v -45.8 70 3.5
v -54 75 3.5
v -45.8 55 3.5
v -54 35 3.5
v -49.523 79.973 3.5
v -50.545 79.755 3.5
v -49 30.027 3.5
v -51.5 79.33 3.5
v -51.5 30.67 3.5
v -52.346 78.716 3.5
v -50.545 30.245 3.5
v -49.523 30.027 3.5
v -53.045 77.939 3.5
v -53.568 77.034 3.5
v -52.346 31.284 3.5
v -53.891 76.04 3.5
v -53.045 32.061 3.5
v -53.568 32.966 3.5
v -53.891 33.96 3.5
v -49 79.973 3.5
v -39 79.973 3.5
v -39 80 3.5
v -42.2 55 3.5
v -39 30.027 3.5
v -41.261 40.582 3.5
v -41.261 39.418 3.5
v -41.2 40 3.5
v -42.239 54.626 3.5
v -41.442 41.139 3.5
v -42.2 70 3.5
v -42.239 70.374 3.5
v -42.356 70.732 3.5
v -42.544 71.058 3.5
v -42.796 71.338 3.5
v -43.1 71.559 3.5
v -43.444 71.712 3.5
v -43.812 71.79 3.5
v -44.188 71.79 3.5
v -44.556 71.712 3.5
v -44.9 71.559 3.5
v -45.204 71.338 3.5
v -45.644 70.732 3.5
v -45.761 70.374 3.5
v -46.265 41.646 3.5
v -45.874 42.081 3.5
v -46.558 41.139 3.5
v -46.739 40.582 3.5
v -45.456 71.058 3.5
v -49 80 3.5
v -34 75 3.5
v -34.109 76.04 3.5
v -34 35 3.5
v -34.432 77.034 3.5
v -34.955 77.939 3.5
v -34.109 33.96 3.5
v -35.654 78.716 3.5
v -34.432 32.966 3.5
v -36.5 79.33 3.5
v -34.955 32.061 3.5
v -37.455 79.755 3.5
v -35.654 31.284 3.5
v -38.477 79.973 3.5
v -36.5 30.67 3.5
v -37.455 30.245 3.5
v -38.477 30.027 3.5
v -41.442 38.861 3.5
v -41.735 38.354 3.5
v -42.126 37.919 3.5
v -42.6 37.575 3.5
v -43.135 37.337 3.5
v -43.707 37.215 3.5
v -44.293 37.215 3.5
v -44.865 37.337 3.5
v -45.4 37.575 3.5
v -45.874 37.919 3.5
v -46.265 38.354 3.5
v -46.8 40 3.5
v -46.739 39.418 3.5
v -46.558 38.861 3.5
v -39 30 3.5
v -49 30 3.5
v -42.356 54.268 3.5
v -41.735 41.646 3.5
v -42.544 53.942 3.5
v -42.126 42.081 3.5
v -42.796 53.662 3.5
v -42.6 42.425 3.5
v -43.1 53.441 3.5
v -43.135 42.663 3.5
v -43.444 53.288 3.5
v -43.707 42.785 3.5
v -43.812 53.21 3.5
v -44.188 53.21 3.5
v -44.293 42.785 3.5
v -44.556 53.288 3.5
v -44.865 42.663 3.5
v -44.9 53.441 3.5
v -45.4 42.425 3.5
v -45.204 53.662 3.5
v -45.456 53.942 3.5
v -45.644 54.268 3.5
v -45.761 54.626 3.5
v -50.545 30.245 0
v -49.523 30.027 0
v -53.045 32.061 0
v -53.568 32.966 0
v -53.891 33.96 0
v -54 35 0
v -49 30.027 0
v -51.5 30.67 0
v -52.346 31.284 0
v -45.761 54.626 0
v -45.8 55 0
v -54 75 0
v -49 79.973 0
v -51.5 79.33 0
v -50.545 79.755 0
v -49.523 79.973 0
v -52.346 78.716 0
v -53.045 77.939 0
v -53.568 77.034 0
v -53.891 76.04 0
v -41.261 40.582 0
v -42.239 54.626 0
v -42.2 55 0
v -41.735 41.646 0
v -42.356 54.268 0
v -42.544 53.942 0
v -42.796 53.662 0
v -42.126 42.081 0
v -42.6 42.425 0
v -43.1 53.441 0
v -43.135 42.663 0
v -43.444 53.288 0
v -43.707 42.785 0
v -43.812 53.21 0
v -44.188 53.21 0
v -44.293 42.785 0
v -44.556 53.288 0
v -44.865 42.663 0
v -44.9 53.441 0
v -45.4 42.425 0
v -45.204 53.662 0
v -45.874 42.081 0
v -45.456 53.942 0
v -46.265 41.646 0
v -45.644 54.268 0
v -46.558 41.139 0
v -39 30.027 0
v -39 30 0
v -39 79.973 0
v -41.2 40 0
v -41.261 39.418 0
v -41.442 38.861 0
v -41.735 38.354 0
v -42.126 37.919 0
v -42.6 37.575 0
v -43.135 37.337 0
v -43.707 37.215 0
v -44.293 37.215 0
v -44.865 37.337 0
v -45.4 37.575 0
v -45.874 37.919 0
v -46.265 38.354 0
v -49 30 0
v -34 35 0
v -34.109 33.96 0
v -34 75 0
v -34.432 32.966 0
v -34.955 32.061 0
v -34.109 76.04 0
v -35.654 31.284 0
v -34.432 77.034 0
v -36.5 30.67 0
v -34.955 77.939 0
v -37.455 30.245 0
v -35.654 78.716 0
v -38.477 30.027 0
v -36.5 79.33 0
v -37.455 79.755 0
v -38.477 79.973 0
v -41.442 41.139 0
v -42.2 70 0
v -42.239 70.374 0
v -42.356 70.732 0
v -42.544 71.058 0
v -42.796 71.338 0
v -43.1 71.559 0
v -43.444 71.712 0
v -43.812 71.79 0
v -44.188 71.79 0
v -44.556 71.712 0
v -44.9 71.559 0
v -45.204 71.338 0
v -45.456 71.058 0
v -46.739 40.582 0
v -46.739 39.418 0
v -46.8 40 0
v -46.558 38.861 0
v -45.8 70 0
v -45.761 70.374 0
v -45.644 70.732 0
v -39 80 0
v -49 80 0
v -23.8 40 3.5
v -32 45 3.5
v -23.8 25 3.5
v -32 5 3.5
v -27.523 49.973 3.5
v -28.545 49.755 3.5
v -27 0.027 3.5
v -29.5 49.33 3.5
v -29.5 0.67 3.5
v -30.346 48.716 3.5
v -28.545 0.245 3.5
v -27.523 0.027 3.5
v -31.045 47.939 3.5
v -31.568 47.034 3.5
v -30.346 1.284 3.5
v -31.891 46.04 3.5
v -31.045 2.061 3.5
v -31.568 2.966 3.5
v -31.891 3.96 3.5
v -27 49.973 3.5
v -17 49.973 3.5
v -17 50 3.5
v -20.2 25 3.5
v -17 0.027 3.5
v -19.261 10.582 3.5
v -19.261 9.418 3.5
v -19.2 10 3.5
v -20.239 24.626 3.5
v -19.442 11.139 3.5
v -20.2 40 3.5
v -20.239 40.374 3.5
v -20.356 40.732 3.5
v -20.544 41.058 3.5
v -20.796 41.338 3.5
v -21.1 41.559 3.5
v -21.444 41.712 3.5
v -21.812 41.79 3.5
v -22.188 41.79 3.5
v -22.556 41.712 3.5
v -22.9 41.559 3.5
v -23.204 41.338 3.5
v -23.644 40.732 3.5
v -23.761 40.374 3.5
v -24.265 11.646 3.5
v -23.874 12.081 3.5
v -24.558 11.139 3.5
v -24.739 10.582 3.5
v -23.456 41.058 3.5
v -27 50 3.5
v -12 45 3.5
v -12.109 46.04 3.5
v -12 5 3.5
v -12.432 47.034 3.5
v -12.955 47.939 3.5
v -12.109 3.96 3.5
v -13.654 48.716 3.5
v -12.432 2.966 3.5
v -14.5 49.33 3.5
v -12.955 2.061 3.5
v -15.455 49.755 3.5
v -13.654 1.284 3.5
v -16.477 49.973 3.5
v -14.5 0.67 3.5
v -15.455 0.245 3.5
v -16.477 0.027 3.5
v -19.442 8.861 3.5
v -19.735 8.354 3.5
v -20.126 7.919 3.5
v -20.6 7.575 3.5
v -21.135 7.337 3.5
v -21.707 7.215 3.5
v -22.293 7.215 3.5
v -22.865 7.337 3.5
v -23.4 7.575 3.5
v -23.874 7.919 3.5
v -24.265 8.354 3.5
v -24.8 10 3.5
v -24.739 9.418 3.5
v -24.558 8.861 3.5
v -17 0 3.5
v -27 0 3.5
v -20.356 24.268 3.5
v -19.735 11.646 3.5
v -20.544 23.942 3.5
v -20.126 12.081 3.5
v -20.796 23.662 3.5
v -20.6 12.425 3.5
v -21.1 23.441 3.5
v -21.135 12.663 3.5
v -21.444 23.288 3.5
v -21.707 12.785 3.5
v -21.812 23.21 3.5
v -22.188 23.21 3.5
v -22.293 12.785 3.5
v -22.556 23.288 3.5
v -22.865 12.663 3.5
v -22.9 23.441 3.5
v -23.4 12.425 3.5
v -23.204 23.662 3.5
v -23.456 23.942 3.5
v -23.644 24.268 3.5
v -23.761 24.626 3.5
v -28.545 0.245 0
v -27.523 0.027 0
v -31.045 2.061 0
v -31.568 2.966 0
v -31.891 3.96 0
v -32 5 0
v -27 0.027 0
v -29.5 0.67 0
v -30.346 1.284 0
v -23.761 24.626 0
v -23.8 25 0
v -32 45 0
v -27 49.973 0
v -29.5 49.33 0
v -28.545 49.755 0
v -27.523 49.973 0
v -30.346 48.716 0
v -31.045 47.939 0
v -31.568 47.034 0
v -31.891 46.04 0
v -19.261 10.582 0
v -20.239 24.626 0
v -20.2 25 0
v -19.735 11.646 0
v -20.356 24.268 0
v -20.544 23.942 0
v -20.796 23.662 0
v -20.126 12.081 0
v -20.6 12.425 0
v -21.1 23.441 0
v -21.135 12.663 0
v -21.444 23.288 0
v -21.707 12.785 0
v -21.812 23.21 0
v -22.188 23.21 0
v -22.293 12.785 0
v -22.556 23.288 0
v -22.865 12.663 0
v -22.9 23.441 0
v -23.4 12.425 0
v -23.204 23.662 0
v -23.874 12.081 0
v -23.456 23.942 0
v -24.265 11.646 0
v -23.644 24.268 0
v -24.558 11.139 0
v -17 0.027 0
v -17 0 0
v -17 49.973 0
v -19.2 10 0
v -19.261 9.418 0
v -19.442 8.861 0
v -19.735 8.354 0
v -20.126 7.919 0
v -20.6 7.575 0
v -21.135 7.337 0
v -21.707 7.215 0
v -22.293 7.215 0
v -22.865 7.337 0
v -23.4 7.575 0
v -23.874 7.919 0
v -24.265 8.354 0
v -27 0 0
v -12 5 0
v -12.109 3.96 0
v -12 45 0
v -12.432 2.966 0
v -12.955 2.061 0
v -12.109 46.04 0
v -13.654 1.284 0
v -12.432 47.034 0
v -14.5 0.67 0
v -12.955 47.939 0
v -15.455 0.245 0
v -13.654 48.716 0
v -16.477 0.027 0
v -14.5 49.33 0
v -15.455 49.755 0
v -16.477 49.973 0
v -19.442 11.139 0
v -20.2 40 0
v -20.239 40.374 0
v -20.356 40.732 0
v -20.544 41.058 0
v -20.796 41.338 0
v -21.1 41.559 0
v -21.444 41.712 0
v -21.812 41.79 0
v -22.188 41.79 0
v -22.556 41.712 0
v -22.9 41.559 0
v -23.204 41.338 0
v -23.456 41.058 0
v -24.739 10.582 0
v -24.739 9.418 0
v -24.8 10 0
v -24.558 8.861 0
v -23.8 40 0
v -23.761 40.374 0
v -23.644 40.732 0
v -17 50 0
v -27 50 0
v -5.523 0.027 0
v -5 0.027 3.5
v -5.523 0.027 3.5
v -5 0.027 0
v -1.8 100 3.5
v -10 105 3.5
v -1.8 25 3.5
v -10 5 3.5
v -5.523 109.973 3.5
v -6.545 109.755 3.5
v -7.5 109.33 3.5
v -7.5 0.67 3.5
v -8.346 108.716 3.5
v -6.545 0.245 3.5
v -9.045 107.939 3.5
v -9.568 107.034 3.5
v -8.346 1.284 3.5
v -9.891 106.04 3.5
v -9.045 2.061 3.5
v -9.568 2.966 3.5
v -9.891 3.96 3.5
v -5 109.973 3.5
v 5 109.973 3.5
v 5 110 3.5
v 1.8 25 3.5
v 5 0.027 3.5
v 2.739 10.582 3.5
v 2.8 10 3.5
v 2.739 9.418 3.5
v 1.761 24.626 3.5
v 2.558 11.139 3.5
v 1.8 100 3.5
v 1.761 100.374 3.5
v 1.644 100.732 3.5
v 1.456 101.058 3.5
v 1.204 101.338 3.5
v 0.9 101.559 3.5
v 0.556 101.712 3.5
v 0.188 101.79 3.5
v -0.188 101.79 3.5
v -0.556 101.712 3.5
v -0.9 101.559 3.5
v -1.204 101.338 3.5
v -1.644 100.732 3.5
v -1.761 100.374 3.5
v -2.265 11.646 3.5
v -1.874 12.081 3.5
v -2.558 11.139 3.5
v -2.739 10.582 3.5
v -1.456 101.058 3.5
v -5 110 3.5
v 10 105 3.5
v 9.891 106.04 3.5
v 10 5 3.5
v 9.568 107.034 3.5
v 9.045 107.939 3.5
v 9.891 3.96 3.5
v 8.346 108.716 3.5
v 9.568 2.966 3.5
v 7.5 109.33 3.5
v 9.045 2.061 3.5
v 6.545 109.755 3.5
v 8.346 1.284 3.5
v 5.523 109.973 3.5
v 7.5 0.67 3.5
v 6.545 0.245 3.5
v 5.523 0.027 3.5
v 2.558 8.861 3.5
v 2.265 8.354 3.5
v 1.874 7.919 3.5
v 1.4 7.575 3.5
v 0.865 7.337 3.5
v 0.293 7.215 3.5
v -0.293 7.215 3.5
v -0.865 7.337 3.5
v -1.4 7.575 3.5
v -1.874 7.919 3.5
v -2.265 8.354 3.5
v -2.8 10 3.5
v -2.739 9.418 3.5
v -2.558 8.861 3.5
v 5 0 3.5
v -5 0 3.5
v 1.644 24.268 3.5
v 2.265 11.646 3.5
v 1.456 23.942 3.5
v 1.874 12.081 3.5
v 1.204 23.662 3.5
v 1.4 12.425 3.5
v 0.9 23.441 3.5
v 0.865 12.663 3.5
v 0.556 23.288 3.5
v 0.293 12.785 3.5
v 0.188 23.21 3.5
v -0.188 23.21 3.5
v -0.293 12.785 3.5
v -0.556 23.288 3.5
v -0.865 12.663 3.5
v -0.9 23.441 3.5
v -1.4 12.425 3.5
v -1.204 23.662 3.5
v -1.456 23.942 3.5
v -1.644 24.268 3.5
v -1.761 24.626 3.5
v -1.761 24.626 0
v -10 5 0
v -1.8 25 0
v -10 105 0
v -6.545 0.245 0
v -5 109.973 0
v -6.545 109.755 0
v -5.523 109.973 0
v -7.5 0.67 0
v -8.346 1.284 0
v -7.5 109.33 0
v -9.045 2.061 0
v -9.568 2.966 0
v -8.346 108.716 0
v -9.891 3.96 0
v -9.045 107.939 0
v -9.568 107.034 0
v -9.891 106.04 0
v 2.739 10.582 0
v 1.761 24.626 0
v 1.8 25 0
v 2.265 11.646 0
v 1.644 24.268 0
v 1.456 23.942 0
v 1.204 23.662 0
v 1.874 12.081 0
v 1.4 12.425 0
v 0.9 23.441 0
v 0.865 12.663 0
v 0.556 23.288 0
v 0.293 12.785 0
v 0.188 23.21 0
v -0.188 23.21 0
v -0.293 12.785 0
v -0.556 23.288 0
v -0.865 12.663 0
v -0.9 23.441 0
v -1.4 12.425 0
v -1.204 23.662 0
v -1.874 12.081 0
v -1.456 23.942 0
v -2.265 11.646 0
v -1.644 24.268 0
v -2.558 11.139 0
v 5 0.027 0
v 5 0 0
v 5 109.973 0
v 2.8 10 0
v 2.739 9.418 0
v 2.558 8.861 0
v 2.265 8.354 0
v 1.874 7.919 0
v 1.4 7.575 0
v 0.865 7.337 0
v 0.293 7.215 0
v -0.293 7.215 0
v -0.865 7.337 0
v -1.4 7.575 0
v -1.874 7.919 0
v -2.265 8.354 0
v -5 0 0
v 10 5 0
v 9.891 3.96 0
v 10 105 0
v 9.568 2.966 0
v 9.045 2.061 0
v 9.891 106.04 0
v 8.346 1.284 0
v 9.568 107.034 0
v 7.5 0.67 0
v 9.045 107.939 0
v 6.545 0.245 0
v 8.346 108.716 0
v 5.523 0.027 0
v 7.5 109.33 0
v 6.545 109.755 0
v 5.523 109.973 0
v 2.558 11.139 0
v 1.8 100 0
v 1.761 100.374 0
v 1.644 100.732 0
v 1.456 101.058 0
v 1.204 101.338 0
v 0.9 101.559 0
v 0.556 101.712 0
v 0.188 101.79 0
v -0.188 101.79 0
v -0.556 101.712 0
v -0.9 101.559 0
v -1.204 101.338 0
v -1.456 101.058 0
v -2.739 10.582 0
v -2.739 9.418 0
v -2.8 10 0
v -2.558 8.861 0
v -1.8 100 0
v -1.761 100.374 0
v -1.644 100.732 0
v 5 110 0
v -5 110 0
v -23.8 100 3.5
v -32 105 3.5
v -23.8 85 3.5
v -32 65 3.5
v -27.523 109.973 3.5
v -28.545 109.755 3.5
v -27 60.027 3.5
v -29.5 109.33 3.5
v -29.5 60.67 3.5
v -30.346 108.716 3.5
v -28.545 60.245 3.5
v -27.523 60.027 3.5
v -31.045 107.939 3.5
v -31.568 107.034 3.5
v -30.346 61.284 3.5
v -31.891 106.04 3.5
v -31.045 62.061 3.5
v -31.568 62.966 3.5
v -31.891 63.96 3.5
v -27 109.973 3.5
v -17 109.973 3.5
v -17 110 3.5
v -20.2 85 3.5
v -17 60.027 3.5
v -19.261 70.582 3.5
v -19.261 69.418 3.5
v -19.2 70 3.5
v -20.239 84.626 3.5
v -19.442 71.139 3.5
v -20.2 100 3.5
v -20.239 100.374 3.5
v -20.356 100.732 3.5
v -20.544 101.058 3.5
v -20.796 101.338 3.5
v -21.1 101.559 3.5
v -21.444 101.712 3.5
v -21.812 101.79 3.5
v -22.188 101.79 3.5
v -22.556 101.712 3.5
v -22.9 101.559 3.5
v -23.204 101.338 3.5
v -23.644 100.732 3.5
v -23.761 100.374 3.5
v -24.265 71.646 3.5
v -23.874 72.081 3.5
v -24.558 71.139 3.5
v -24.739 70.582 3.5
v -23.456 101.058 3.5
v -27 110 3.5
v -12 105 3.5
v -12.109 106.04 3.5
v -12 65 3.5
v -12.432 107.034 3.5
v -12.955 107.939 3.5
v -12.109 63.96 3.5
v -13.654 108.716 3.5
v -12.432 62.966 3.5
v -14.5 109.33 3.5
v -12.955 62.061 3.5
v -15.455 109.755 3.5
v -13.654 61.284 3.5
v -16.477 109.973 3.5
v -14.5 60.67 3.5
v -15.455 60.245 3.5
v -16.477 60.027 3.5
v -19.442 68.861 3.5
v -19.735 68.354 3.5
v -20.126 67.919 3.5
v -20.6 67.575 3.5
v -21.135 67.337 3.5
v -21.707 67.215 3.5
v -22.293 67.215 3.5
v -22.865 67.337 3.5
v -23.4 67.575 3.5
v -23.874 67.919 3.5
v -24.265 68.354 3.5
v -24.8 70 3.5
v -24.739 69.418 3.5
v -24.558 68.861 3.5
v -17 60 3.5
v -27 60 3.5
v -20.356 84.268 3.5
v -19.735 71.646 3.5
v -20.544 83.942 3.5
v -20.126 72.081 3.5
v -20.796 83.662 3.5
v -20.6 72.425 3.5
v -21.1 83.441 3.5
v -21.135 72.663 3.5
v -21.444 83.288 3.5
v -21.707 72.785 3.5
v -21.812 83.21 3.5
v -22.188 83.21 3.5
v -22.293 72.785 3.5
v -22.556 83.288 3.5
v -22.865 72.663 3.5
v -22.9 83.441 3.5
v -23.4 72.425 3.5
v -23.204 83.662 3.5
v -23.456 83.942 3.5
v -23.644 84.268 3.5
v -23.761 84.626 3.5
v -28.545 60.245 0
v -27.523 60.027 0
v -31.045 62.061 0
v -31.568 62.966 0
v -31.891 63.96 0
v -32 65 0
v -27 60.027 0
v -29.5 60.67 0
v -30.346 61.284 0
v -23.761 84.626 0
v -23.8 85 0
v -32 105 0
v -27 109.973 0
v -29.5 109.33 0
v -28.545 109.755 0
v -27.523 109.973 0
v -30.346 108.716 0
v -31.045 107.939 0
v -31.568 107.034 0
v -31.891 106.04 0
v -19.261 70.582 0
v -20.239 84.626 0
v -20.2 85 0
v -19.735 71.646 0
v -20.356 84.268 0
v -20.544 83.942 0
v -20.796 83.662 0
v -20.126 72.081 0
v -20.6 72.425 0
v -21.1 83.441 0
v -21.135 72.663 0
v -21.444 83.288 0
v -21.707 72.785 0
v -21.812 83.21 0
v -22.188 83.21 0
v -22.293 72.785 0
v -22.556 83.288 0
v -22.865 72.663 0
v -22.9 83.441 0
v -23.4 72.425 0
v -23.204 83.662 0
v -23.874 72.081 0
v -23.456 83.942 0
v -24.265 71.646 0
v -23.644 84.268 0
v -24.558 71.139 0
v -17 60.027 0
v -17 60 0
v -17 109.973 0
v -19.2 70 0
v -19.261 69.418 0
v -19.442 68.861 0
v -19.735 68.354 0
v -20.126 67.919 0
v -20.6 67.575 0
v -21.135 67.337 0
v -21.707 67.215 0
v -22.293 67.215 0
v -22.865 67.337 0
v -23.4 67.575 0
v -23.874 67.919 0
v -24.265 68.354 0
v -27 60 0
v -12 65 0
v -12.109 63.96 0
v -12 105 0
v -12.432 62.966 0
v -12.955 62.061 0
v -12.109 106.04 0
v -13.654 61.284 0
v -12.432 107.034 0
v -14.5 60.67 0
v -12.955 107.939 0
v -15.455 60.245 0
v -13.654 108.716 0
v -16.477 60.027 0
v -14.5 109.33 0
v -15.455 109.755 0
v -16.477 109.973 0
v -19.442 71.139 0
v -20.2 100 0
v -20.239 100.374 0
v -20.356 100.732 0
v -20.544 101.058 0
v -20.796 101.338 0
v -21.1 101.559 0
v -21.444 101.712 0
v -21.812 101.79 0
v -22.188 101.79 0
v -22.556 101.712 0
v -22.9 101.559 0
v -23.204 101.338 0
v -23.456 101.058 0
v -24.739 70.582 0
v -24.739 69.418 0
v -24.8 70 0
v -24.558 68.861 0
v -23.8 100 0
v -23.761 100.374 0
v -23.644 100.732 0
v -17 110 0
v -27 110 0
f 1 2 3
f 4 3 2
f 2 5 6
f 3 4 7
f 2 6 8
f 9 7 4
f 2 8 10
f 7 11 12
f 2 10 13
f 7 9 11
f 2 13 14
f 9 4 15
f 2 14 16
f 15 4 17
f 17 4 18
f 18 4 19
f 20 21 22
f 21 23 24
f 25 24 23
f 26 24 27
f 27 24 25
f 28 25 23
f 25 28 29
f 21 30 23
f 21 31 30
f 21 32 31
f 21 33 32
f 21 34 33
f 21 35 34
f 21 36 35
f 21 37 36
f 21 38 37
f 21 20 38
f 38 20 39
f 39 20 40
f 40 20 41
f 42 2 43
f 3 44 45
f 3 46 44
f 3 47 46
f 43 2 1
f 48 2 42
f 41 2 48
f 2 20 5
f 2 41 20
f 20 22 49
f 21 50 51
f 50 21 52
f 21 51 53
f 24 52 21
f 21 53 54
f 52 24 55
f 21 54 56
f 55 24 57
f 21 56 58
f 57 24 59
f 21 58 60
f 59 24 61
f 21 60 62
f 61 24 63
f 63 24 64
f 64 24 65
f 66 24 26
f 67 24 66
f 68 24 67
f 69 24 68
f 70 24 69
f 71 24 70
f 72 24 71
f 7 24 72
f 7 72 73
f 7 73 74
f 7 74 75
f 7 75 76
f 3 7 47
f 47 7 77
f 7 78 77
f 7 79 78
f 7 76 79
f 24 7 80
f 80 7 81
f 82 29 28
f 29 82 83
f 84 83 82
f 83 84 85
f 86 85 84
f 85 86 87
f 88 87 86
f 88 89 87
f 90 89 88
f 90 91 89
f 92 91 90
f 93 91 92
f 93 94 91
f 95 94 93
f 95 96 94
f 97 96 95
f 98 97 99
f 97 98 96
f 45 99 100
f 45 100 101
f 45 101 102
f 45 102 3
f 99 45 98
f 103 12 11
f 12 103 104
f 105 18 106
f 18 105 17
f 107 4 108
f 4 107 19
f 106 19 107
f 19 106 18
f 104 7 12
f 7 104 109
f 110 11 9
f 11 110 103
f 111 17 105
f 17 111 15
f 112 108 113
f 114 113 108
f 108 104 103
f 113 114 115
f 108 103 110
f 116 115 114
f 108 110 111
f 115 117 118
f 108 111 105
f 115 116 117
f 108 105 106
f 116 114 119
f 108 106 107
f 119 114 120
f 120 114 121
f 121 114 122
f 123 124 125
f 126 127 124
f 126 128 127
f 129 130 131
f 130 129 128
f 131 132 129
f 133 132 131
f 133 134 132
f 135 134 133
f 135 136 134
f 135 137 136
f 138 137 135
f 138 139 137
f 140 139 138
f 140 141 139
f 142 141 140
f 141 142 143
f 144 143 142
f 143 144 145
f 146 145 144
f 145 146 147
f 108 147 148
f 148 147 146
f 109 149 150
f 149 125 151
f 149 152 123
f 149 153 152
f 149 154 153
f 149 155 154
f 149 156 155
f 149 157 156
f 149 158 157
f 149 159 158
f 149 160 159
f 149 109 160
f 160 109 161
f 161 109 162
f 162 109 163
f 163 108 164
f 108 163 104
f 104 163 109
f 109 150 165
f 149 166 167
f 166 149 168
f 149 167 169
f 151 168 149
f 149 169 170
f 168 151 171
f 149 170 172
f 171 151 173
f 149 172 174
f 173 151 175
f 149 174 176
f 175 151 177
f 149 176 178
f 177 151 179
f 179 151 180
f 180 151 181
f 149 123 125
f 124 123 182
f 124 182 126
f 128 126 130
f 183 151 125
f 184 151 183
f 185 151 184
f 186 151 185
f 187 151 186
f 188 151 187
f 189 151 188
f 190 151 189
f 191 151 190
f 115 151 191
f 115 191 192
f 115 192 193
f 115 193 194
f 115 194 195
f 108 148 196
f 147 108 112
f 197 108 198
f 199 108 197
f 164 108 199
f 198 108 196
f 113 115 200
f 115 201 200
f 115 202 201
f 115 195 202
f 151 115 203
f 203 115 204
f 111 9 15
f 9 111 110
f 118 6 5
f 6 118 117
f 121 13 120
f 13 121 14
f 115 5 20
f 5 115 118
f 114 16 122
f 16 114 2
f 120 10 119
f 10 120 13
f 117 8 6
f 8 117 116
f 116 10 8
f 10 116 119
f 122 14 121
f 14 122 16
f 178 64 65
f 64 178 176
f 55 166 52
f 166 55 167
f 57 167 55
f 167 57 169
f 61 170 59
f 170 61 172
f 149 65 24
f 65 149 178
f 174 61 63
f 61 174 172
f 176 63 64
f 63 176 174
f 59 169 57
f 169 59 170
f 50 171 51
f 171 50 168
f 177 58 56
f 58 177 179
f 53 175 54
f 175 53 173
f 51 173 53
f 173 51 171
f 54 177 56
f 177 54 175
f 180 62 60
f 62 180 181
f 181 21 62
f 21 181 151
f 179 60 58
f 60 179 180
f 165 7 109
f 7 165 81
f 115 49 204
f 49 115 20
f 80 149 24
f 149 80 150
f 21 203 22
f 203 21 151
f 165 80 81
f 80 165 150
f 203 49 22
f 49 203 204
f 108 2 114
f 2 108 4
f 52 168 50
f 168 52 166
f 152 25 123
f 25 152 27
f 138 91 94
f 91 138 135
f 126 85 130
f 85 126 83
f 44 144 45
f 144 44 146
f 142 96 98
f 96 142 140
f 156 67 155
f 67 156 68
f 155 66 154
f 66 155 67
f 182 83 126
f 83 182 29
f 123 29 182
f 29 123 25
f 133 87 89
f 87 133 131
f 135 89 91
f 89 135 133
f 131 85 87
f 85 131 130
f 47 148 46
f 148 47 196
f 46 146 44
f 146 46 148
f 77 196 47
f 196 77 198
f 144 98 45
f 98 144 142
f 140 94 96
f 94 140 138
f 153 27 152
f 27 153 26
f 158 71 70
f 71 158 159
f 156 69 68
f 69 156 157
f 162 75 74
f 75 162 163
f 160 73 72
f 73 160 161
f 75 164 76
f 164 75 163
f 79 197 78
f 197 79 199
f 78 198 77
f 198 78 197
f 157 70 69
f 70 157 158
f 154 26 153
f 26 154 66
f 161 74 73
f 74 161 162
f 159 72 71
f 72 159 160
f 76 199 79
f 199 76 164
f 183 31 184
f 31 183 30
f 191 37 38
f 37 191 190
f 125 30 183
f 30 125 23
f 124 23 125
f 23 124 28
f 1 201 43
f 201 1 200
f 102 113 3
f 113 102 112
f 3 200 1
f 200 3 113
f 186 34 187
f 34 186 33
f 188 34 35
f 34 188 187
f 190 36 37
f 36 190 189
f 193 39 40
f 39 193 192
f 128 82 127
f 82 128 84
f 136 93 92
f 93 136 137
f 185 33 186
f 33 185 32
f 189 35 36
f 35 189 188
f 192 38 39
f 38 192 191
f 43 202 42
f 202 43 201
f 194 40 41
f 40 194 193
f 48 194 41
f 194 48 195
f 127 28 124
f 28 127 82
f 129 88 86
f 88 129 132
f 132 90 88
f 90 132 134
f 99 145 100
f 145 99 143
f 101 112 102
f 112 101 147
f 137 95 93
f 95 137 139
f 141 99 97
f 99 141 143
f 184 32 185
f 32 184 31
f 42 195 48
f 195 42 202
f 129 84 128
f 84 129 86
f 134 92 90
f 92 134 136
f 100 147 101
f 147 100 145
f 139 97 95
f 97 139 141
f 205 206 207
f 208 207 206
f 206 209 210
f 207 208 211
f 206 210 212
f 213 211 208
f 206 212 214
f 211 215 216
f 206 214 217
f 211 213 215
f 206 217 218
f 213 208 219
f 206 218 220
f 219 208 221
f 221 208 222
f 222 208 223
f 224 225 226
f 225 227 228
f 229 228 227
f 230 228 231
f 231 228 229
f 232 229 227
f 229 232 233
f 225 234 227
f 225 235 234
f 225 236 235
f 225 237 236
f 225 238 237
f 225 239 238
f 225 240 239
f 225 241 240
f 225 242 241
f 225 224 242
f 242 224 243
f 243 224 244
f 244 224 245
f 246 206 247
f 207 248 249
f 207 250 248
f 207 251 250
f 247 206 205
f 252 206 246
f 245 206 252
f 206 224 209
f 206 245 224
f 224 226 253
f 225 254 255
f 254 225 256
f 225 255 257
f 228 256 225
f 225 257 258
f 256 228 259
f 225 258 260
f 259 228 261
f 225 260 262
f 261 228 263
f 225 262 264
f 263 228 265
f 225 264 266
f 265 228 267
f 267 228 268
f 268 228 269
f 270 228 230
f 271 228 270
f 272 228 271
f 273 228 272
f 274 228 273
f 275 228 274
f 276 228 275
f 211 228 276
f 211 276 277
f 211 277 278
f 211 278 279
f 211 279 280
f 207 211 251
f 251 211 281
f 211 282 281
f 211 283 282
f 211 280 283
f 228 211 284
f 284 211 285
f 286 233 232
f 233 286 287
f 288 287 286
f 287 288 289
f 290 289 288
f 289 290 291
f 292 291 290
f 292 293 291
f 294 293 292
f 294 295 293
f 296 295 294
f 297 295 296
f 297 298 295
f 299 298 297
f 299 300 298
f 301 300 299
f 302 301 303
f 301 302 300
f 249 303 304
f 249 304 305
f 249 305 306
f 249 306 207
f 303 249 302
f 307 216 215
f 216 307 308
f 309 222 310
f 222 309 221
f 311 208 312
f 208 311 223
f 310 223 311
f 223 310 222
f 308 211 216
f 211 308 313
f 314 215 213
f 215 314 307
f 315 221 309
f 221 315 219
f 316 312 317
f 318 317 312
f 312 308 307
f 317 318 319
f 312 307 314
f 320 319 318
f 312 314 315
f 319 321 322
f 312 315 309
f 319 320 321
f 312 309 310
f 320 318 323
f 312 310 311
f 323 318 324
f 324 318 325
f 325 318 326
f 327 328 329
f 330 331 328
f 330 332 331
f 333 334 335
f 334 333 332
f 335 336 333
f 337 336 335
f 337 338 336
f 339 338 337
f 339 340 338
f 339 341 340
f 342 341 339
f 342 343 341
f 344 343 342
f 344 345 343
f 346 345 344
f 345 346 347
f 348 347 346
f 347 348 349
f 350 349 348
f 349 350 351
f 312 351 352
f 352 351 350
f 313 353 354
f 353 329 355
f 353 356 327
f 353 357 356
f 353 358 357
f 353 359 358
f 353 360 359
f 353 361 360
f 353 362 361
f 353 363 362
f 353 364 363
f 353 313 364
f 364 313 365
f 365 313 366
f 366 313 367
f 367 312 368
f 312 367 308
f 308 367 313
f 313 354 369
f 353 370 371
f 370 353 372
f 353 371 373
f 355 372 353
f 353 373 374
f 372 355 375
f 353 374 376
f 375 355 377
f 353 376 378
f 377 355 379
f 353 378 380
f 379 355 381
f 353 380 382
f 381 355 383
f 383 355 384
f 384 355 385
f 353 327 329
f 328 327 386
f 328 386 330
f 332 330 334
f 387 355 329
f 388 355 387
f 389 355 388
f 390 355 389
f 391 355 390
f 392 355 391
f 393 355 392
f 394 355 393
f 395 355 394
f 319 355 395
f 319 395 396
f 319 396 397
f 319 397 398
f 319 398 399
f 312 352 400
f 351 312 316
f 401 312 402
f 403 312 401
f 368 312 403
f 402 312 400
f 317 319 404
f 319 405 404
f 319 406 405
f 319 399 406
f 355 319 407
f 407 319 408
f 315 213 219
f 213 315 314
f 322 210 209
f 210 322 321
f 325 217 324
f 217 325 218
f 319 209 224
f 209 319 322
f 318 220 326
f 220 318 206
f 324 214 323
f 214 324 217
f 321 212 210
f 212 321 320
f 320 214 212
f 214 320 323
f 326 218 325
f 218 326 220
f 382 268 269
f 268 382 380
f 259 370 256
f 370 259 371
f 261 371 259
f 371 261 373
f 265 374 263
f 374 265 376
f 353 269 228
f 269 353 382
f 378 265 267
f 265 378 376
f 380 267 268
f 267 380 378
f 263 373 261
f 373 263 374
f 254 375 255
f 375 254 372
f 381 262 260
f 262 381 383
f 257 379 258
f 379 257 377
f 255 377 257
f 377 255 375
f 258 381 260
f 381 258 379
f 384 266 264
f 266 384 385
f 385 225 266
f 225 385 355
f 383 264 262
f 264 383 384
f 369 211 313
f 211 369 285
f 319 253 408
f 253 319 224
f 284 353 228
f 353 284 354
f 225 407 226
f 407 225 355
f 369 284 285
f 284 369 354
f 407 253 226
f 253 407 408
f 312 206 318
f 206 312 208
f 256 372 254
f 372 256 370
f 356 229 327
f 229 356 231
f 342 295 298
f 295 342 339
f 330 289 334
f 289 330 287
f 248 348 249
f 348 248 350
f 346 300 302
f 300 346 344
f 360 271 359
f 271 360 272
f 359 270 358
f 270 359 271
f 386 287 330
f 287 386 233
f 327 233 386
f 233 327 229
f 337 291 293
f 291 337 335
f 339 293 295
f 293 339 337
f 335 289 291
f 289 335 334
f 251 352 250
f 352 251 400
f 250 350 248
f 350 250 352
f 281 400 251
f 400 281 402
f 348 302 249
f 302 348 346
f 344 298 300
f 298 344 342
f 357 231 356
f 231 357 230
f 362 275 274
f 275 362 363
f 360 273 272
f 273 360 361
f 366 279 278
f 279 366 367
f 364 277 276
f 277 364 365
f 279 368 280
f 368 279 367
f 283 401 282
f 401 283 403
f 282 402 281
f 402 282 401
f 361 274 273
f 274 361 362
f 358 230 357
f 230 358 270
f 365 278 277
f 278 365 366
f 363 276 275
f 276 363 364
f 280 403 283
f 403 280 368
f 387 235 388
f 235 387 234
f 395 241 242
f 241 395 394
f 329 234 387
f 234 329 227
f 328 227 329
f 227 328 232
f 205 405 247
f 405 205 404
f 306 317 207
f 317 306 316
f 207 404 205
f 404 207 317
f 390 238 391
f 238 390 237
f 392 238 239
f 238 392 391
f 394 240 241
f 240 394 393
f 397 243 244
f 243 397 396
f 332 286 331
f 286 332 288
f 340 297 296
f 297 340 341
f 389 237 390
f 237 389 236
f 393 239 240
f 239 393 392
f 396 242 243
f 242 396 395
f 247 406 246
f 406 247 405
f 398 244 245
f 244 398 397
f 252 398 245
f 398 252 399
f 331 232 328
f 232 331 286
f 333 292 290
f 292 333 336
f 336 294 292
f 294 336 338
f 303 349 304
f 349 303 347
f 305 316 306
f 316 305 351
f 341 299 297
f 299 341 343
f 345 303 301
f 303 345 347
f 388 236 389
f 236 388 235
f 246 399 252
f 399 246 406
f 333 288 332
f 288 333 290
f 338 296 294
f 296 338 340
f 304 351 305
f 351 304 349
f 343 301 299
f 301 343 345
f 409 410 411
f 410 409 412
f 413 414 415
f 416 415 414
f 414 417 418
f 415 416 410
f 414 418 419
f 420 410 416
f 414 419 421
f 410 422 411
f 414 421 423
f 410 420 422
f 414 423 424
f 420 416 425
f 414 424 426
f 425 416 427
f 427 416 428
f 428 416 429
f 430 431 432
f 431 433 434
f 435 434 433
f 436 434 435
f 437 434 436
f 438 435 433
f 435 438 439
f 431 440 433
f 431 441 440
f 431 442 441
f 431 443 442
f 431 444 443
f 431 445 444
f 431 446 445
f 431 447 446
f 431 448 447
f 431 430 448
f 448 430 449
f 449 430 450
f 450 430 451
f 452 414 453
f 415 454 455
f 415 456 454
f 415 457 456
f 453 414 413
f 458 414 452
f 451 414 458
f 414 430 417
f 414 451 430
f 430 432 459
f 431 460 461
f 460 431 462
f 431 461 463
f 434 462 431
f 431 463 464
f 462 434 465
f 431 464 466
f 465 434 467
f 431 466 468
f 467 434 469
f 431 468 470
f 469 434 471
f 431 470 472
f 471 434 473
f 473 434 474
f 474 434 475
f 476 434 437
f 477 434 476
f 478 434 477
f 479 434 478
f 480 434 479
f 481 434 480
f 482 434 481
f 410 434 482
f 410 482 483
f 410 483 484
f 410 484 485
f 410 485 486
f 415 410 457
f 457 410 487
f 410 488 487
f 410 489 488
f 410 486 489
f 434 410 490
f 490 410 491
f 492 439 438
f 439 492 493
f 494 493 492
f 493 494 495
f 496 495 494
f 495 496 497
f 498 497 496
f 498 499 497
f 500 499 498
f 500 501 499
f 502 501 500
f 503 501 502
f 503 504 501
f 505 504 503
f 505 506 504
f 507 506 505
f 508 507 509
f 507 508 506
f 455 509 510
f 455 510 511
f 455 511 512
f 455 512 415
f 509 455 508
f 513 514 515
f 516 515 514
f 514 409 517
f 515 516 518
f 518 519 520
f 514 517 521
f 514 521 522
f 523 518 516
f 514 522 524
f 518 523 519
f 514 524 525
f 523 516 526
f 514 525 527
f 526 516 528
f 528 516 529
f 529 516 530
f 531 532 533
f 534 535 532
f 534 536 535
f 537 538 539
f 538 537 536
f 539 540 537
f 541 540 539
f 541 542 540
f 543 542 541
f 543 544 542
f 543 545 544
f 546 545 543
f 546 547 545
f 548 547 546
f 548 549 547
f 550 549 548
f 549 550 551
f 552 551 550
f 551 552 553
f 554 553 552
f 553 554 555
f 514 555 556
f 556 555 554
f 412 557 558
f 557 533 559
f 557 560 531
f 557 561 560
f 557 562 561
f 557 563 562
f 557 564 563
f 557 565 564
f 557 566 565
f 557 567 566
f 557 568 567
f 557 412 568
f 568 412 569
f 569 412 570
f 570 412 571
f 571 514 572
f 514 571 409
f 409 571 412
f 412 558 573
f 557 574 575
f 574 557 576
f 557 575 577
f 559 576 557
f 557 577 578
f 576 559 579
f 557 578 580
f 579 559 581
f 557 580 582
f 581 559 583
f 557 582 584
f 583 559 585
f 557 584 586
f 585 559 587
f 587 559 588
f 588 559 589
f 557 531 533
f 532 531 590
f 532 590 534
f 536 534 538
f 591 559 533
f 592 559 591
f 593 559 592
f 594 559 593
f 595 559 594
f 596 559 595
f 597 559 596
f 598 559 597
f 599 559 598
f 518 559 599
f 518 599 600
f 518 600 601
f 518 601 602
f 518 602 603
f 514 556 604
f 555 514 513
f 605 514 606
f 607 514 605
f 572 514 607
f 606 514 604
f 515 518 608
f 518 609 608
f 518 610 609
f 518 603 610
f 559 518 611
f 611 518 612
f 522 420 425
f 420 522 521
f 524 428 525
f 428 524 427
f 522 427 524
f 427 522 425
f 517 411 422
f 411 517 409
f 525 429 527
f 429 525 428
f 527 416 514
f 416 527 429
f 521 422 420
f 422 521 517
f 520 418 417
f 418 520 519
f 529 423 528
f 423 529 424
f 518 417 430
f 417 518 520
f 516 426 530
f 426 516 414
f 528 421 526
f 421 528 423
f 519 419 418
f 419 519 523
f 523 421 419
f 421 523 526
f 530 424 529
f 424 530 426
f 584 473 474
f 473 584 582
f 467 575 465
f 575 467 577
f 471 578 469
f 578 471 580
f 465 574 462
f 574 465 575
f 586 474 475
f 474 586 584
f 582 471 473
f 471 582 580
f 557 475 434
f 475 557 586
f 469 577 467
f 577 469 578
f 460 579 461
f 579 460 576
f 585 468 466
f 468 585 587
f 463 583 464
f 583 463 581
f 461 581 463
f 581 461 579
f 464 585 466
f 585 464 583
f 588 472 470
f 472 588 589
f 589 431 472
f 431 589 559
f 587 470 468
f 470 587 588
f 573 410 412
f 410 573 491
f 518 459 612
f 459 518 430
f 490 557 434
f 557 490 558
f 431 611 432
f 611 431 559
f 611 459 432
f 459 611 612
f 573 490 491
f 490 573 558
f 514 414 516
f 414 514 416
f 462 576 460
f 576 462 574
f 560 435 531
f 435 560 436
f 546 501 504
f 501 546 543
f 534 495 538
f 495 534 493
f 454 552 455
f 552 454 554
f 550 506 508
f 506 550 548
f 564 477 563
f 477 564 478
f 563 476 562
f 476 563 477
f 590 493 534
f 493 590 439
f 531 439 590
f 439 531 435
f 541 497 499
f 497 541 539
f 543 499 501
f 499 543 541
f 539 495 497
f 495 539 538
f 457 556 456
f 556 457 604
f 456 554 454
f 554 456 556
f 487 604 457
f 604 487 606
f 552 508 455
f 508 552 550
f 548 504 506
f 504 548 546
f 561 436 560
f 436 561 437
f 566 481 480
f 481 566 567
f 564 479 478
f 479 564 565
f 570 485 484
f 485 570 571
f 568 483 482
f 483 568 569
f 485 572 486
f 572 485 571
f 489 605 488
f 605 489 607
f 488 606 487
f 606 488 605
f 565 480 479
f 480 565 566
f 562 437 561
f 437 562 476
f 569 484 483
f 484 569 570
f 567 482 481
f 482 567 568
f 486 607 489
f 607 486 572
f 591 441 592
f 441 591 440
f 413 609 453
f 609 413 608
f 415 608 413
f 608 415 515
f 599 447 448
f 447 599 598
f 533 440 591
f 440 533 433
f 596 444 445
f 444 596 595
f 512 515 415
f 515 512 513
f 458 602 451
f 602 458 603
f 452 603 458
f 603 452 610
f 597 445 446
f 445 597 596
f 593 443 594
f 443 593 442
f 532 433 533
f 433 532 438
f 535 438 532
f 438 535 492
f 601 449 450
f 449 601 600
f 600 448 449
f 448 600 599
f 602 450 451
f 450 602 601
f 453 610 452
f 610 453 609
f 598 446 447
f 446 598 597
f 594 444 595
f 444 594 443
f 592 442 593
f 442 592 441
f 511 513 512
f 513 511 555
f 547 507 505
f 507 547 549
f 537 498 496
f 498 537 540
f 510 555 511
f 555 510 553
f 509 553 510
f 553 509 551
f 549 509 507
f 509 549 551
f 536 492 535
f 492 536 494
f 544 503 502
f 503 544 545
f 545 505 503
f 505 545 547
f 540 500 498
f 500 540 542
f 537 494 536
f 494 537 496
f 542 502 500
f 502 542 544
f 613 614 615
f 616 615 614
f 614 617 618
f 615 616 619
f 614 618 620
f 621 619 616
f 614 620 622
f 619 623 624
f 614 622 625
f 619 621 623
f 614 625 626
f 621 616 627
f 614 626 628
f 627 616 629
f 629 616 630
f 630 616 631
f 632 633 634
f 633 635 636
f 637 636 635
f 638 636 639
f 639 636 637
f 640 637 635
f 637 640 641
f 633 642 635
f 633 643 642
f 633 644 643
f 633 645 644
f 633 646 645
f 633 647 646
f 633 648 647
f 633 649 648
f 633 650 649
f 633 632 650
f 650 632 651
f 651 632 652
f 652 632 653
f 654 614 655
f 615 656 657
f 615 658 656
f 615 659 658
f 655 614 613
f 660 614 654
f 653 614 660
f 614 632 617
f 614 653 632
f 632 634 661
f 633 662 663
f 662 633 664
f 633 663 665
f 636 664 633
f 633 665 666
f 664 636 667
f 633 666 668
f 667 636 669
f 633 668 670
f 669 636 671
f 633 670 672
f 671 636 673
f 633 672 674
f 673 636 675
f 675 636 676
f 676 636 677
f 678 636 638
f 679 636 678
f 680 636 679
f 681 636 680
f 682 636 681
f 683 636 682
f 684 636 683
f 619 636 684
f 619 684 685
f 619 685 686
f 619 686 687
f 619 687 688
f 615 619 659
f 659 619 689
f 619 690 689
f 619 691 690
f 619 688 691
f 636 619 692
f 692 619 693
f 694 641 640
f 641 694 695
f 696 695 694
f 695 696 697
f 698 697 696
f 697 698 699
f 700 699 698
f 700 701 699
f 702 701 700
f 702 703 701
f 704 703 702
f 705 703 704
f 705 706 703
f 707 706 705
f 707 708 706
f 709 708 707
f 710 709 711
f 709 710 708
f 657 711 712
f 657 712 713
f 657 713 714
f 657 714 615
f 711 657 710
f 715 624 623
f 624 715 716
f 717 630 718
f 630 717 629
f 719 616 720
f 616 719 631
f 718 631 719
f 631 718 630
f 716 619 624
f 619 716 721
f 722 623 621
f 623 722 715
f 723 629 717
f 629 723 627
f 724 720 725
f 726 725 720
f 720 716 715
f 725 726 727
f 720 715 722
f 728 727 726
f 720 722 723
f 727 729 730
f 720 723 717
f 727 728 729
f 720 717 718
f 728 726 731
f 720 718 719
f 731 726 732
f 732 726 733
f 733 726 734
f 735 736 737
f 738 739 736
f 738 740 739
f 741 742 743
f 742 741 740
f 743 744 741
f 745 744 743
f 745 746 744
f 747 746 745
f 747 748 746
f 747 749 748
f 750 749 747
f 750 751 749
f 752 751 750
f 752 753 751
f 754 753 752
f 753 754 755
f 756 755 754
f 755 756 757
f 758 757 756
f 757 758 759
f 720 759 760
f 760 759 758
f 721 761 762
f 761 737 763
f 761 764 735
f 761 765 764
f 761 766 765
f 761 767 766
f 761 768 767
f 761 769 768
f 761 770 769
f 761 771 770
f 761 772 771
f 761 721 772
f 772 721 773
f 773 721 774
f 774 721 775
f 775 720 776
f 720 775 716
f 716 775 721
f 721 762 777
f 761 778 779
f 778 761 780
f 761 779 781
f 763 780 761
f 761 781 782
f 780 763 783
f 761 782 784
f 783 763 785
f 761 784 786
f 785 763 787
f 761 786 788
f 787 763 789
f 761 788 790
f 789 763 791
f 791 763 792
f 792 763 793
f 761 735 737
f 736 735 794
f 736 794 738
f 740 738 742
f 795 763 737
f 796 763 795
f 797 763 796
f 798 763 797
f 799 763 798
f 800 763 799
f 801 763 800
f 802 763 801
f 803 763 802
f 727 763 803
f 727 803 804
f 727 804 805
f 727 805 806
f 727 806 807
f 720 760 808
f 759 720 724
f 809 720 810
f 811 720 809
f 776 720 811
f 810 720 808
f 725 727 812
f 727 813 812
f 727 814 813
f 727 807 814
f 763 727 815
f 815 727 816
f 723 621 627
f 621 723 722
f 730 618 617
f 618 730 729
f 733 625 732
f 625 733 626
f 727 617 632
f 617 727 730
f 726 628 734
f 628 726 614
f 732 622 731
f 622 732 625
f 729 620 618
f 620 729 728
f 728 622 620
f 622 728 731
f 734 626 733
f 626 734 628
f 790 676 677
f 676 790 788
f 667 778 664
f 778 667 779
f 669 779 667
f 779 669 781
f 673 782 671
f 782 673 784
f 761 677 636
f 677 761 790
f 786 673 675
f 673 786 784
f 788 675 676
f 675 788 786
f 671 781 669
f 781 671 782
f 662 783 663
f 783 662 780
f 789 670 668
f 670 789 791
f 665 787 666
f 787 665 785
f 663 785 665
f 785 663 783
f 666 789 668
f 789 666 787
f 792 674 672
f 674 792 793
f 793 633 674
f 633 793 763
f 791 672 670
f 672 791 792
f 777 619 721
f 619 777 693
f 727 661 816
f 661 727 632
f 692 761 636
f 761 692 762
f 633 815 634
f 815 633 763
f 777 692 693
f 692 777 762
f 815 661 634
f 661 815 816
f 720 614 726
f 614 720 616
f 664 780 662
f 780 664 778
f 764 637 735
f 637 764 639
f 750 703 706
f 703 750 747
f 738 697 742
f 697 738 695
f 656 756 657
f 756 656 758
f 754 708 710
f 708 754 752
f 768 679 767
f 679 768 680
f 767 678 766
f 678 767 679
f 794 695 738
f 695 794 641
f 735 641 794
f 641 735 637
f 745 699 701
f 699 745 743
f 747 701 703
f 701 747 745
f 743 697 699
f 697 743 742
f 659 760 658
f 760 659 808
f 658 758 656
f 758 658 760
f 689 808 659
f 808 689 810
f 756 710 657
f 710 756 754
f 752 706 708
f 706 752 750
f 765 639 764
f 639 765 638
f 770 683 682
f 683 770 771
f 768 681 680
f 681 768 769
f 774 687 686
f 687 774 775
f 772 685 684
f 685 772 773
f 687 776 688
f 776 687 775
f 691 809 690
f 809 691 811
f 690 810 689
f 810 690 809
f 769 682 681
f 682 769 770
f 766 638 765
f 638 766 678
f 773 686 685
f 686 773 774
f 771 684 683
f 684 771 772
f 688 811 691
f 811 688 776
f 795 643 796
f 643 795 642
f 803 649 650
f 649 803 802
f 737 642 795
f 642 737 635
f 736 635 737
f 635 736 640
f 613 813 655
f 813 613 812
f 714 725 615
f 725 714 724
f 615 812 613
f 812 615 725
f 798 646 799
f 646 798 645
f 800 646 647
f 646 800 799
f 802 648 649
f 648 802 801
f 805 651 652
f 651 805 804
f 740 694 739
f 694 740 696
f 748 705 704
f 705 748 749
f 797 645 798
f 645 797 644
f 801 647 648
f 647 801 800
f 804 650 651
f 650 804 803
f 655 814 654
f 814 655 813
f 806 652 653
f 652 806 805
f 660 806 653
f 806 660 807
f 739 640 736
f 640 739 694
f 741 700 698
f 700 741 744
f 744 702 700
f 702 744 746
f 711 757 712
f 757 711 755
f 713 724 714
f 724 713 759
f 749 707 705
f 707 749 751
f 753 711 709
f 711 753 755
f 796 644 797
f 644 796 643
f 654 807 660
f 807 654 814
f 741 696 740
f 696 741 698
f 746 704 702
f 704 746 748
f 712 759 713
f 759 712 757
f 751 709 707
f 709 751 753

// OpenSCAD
// file: roundedBox.scad
// size is a vector [x, y, z], always draws from center!
module roundedBox(size, radius=5, sidesonly=true)
{
	rot = [ [0,0,0], [90,0,90], [90,90,0] ];
   	if (sidesonly)
	{
   		cube(size - [2*radius,0,0], true);
      	cube(size - [0,2*radius,0], true);
      	for (x = [radius-size[0]/2, -radius+size[0]/2],
      	     y = [radius-size[1]/2, -radius+size[1]/2])
		{
      		translate([x,y,0])
				cylinder(r=radius, h=size[2], center=true);
        }
    }
	else
	{
   		cube([size[0], size[1]-radius*2, size[2]-radius*2], 
			 center=true);
		cube([size[0]-radius*2, size[1], size[2]-radius*2],
			 center=true);
        cube([size[0]-radius*2, size[1]-radius*2, size[2]],
			 center=true);

        for (axis = [0:2])
		{
      		for (x = [radius-size[axis]/2, -radius+size[axis]/2],
                 y = [ radius-size[(axis+1)%3]/2, 
					  -radius+size[(axis+1)%3]/2])
			{
         		rotate(rot[axis]) 
				translate([x,y,0]) 
                cylinder(h=size[(axis+2)%3]-2*radius, 
					     r=radius, center=true);
			}
		}
   		for (x = [radius-size[0]/2, -radius+size[0]/2],
           y = [radius-size[1]/2, -radius+size[1]/2],
           z = [radius-size[2]/2, -radius+size[2]/2])
		{
      		translate([x,y,z])
      		sphere(radius);
        }
	}
}
// file: configuration.scad
// Configuration file for the Kumu-3D printer.
//
// DO NOT SLICE THIS.
//
// This work is licensed under a Creative Commons Attribution-ShareAlike 4.0
// International License.
// Visit:  http://creativecommons.org/licenses/by-sa/4.0/
//
// Haydn Huntley
// haydn.huntley@gmail.com

// All measurements in mm.
smidge            = 0.1;
mmPerInch         = 25.4;
m3Radius          = (3.0 + 0.2) / 2;
m3LooseRadius     = m3Radius + 0.2;
m3TightRadius     = m3Radius - 0.2;
m3HeadHeight      = 3.0 + 0.2;
m3HeadRadius      = (5.4 + 0.2) / 2;
m3LooseHeadRadius = m3HeadRadius + 0.2;
m3NutRadius       = (6.25 + 0.75) / 2;
m3LooseNutRadius  = (m3NutRadius + 0.1);
m3TightNutRadius  = (m3NutRadius - 0.1);
m3NutHeight		  = 2.4;
m3NylockNutHeight = 4.0;
m3LooseNutHeight  = 2.4+0.2;
nozzleWidth		  = 0.5;
extrusionWidth    = 20.0;
copperPipeRadius  = 16.0/2 - smidge;
m5Radius          = (5.0 + 0.2) / 2;
m5LooseRadius     = m5Radius + 0.2;
m5TightRadius     = m5Radius - 0.2;
m5HeadHeight      = 5.6;		// For M5 SHCS
m5LooseHeadRadius = 8.6 / 2;	// For M5 SHCS
m5ButtonHeadRadius     = (9.5 + 0.3) / 2;  // For M5 button head
m5ButtonHeadHeight     = 2.5 + 0.5;
m5LowProfileHeadRadius = (9.5 + 0.3) / 2;  // For M5 low profile
m5LowProfileHeadHeight = 1.5 + 0.5;
m5x8Height        = 8;        // For M5x8
m5LooseNutRadius  = (8.9 + 0.4) / 2;
m5PlainNutHeight  = (3.8 + 0.2);
m5LockNutHeight   = (4.9 + 0.3);
m4LooseNutRadius  = (8.0 + 0.3) / 2;
m4NutHeight       = (3.2 + 0.3);

lowerFrameHeight    = 3 * extrusionWidth + 12;
ballJointSeparation = 48.0;
// main file
// These power supply holders work with 2020 extrusions and typical
// rectangular 300-360 watt power supplies.
//
// This work is licensed under a Creative Commons Attribution-ShareAlike 4.0
// International License.
// Visit:  http://creativecommons.org/licenses/by-sa/4.0/
//
// Haydn Huntley
// haydn.huntley@gmail.com

$fn = 360/12;

include <configuration.scad>;
include <roundedBox.scad>;

// All measurements in mm.
psHoleOffset = extrusionWidth/4;
xBody        = extrusionWidth;
zBody	 	 = 3.5;


module powerSupplyHolder(yBody)
{
	translate([0, 0, zBody/2])
	difference()
	{
		// Make the body.
		translate([0, yBody/2, 0])
		roundedBox([xBody, yBody, zBody], 5, true);

		// Remove a hole for mounting
		m5x8Hole(0, extrusionWidth/2);
	
		// Remove a slot for mounting.
		hull()
		{
			m3x6Hole(0, yBody-extrusionWidth/2);
			m3x6Hole(0, extrusionWidth+psHoleOffset);
		}
	}
}


module m5x8Hole(x, y)
{
	translate([x, y, 0])
	cylinder(r=m5LooseRadius, h=zBody+smidge, center=true);
}


module m3x6Hole(x, y)
{
	translate([x, y, 0])
	cylinder(r=m3LooseRadius, h=zBody+smidge, center=true);
}


// The short ones for the front.
translate([-2.2*extrusionWidth, 1.5 * extrusionWidth, 0])
powerSupplyHolder(2.5 * extrusionWidth);

translate([-1.1 * extrusionWidth, 0, 0])
powerSupplyHolder(2.5 * extrusionWidth);

// The long one for the back.
powerSupplyHolder(110);

translate([-1.1 * extrusionWidth, 3 * extrusionWidth, 0])
powerSupplyHolder(2.5 * extrusionWidth);
